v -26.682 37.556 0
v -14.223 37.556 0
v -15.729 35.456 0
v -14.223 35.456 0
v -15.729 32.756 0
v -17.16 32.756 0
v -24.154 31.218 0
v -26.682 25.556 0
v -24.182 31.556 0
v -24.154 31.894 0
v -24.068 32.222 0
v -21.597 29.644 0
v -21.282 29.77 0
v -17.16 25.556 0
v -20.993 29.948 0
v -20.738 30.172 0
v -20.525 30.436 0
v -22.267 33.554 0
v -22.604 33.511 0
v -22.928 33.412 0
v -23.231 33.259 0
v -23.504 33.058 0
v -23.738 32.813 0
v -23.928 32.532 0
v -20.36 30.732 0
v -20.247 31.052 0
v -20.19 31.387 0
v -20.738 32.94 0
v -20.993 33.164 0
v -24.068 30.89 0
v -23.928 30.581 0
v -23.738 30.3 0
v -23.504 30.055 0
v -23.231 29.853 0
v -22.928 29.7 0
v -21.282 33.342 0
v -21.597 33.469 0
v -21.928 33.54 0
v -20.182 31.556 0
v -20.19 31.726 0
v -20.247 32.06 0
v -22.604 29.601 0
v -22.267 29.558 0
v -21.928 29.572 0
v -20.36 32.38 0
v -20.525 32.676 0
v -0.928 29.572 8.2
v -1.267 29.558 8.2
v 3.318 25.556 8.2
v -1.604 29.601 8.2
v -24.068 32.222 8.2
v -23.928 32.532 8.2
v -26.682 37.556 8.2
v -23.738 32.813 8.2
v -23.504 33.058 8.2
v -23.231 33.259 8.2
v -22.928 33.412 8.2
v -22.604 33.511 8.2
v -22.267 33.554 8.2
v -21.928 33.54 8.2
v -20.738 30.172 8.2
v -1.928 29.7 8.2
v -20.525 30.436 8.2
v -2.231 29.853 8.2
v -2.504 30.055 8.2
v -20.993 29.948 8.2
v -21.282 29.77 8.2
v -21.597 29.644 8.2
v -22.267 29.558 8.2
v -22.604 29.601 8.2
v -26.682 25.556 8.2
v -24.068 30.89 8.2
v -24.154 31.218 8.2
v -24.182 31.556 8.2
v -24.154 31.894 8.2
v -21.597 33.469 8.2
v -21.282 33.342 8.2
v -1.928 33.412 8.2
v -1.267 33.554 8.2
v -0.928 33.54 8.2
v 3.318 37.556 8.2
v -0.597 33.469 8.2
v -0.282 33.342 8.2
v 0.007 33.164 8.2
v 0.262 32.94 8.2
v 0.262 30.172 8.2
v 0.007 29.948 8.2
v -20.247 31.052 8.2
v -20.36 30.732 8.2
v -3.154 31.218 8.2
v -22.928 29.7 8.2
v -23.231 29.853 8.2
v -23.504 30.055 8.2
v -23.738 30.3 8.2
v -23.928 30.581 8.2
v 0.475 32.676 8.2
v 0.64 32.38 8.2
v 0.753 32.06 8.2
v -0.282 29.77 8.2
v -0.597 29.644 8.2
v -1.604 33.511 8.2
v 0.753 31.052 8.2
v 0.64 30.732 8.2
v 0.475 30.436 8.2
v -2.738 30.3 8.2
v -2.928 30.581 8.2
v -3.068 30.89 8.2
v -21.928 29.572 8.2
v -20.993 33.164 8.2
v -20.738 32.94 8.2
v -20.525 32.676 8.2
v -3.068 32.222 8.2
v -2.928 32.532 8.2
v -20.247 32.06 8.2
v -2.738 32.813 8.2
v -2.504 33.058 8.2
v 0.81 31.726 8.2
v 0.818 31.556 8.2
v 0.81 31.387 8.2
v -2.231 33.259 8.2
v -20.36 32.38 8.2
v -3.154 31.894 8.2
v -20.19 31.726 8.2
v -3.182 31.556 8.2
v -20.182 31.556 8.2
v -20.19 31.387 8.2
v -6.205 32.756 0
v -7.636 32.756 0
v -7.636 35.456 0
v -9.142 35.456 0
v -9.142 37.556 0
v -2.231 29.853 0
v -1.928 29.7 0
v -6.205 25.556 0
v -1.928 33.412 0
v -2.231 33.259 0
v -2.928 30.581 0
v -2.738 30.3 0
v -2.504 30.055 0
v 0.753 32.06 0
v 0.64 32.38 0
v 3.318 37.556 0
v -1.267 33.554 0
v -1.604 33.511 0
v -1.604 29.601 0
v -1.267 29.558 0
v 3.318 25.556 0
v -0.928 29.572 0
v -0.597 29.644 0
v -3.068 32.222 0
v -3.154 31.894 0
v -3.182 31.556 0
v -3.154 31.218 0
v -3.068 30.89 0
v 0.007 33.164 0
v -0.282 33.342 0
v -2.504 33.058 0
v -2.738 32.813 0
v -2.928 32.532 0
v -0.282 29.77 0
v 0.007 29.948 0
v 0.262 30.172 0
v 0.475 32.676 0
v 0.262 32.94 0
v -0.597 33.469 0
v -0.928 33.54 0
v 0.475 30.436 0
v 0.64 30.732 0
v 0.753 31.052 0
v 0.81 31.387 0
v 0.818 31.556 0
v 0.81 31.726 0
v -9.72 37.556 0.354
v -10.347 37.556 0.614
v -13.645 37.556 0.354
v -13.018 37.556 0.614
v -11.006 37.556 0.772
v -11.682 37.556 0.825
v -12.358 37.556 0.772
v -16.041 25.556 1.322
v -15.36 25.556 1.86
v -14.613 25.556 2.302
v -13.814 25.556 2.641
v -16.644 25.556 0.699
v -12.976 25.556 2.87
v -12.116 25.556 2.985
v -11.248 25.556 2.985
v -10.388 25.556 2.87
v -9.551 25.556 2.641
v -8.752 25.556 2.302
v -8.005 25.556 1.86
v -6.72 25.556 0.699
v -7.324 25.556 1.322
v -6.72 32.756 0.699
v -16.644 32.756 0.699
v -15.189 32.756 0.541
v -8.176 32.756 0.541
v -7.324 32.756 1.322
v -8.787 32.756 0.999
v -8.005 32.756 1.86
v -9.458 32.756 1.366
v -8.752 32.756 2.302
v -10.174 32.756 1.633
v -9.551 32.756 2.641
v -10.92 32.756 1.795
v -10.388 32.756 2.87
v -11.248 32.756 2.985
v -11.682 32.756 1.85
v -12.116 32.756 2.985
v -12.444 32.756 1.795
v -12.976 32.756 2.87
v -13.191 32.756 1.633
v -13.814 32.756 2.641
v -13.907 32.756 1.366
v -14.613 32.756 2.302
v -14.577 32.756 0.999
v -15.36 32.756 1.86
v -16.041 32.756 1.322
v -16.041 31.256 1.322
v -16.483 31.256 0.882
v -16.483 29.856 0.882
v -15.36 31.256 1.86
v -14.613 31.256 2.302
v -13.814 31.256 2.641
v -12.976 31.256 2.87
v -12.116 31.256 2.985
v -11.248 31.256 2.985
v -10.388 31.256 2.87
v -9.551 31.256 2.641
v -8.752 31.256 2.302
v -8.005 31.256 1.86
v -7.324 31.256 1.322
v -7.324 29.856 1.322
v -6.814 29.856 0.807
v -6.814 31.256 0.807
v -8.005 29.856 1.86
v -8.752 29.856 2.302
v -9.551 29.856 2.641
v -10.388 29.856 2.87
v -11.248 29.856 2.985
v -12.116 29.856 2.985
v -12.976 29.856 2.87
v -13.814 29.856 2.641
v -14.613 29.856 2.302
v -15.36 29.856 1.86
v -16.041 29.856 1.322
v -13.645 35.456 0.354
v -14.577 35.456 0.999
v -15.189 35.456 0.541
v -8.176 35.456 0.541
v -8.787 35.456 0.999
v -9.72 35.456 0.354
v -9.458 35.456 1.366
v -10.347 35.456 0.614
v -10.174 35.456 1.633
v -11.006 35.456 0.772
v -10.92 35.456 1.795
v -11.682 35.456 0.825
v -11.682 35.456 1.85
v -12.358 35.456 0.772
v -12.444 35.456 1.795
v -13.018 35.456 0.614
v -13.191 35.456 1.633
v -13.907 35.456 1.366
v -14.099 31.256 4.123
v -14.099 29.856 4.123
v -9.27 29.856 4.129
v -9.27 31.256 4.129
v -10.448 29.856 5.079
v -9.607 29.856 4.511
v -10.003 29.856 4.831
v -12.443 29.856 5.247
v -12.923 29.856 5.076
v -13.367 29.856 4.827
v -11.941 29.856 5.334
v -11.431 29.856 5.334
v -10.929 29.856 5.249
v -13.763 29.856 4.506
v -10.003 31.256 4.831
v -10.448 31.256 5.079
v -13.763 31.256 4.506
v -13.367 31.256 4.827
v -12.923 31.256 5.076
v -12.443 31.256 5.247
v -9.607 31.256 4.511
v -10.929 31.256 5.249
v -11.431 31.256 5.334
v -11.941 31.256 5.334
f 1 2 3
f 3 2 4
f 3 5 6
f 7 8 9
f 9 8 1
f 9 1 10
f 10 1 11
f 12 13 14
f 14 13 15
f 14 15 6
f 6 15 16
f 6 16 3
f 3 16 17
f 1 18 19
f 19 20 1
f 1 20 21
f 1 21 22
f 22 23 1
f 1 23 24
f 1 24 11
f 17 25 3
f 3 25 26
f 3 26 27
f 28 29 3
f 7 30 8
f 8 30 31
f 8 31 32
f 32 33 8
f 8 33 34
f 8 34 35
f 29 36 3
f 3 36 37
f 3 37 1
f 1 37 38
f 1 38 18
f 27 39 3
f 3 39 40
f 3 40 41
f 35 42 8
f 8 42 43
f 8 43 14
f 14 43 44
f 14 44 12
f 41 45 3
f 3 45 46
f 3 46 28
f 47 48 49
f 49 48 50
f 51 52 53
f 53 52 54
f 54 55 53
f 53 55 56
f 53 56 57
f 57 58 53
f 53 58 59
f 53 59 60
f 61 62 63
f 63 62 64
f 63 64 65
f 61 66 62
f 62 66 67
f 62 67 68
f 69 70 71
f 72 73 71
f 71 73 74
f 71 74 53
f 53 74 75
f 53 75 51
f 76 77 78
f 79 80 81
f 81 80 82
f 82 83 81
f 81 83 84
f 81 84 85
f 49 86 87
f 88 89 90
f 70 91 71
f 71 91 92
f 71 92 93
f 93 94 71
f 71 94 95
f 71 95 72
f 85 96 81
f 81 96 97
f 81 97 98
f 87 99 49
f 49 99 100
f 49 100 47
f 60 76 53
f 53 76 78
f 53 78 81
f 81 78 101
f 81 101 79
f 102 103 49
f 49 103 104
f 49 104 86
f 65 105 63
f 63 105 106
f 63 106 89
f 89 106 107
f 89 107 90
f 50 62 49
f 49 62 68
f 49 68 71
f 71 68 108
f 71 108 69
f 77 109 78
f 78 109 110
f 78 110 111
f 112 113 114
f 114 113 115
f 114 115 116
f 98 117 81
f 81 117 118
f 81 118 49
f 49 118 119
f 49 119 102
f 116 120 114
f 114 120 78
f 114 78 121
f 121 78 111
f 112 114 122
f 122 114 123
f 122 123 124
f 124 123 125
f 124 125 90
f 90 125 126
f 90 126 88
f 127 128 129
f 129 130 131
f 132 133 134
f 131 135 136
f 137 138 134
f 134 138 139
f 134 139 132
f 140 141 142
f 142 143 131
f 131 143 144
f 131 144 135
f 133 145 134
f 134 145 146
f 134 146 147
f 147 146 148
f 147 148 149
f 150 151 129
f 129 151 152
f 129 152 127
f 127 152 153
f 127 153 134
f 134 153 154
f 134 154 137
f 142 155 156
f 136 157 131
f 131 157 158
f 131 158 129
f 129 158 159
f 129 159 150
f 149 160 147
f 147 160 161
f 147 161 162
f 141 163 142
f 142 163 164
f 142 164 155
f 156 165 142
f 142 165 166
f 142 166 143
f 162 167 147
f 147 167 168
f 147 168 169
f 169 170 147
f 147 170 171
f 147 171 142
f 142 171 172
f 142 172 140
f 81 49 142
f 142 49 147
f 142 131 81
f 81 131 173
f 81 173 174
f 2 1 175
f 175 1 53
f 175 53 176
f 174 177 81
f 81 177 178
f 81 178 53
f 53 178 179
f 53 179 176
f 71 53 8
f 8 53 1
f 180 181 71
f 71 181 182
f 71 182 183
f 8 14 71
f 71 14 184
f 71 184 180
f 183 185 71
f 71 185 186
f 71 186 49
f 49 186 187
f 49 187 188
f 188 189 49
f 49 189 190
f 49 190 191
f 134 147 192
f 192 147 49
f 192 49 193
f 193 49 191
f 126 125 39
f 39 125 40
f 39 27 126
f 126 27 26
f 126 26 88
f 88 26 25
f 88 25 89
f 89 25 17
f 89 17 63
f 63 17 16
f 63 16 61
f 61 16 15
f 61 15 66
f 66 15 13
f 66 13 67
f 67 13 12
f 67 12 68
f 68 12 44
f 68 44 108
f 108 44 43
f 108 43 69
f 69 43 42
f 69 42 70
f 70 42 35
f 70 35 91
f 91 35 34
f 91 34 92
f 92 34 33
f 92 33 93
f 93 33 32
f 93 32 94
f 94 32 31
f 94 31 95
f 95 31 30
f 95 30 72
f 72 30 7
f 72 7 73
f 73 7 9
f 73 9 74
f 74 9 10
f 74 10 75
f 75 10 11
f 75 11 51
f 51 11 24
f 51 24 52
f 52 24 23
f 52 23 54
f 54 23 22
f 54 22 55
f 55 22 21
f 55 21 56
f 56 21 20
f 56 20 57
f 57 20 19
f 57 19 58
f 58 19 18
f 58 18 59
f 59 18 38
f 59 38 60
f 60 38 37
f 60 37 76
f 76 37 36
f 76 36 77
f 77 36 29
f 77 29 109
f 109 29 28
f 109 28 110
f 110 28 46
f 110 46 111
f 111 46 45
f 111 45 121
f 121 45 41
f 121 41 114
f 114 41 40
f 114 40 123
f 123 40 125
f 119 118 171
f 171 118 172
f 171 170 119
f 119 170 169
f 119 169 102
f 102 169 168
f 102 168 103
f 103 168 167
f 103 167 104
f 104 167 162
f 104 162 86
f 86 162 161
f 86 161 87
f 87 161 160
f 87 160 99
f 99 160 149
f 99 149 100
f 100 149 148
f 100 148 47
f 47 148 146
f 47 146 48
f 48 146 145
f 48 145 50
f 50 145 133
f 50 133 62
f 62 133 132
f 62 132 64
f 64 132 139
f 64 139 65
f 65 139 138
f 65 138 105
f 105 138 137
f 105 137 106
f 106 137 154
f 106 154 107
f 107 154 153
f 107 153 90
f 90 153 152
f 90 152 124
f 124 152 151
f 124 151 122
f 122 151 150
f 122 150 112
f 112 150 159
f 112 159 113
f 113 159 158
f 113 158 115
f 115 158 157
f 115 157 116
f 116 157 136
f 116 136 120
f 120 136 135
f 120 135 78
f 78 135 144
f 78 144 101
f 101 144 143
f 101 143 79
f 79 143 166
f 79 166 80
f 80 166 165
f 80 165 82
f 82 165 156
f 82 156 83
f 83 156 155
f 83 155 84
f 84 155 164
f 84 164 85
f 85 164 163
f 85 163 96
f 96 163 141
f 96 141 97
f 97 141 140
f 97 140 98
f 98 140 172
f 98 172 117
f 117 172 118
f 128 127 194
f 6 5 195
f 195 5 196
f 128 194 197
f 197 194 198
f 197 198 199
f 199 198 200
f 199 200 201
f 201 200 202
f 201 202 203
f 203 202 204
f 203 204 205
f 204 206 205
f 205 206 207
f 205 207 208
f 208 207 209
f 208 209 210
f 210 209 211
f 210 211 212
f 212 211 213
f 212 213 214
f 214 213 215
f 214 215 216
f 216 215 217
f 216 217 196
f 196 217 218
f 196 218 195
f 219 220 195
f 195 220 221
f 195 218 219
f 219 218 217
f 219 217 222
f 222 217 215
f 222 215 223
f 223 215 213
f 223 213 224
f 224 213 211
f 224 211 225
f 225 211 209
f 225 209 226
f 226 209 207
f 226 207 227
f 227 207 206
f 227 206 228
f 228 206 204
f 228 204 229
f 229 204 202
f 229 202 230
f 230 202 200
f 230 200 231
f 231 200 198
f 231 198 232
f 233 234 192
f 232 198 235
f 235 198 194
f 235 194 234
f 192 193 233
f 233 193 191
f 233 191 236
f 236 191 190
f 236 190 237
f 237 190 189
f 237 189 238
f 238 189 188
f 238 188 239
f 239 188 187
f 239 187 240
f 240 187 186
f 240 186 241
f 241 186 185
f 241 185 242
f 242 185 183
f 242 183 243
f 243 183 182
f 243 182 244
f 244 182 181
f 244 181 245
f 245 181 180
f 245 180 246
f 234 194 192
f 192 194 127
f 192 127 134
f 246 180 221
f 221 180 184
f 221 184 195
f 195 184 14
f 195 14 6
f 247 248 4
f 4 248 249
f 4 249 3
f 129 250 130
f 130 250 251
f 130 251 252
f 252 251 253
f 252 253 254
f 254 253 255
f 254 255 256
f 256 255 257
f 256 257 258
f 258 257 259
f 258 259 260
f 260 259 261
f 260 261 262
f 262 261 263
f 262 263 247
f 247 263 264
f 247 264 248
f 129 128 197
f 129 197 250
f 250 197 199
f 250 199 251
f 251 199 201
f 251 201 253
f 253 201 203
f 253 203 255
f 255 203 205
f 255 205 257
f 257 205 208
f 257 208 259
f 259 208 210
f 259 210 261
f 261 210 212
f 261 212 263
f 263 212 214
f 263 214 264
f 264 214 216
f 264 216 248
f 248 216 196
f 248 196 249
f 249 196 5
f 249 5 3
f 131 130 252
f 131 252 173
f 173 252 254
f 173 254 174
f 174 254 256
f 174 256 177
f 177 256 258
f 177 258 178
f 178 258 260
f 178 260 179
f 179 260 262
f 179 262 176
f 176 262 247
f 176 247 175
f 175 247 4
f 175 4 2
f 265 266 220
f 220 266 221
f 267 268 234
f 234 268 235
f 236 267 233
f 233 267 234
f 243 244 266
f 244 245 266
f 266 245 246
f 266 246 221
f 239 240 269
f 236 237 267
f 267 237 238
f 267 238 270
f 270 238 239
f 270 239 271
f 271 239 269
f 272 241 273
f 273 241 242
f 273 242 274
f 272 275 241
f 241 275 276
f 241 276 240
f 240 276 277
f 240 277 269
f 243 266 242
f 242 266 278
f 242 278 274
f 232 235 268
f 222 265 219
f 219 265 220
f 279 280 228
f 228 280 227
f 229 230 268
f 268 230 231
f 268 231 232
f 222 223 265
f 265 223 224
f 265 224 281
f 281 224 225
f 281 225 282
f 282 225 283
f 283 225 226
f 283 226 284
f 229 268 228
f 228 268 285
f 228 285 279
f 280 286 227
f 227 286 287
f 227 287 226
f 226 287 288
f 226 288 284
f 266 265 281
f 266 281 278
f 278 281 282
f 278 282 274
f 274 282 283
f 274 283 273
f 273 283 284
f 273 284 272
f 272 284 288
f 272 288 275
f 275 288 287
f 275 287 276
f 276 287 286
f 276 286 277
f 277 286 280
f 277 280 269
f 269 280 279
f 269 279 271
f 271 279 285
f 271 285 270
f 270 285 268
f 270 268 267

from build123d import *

# Parameters (mm, degrees)
SKETCH1_W           = 30
SKETCH1_H           = 12
SKETCH1_R           = 2
BOSS_EXTRUDE1_DEPTH = 8.2
SKETCH2_R           = 6.5
CUT_EXTRUDE1_DEPTH  = 7.2
SKETCH3_R           = 5.35
CUT_EXTRUDE2_DEPTH  = 9.9
SKETCH4_R           = 4.325
CUT_EXTRUDE3_DEPTH  = 13.9
CUT_EXTRUDE4_START  = -5.7
CUT_EXTRUDE4_DEPTH  = 1.4


with BuildPart() as part:
    # Sketch1 → Boss-Extrude1 (new body)
    with BuildSketch(Plane.XY):
        with Locations((-11.682314935, 31.556218858)):
            Rectangle(SKETCH1_W, SKETCH1_H)
        with Locations((-22.182314935, 31.556218858)):
            Circle(SKETCH1_R, mode=Mode.SUBTRACT)
        with Locations((-1.182314935, 31.556218858)):
            Circle(SKETCH1_R, mode=Mode.SUBTRACT)
    extrude(amount=BOSS_EXTRUDE1_DEPTH)

    # Sketch2 → Cut-Extrude1 (cut)
    with BuildSketch(Plane(origin=(0, 25.556218858, 0), x_dir=(-1, 0, 0), z_dir=(0, -1, 0))):
        with Locations((11.682314935, 3.5)):
            Circle(SKETCH2_R)
    extrude(amount=-CUT_EXTRUDE1_DEPTH, mode=Mode.SUBTRACT)

    # Sketch3 → Cut-Extrude2 (cut)
    with BuildSketch(Plane(origin=(0, 25.556218858, 0), x_dir=(-1, 0, 0), z_dir=(0, -1, 0))):
        with Locations((11.682314935, 3.5)):
            Circle(SKETCH3_R)
    extrude(amount=-CUT_EXTRUDE2_DEPTH, mode=Mode.SUBTRACT)

    # Sketch4 → Cut-Extrude3 (cut)
    with BuildSketch(Plane(origin=(0, 25.556218858, 0), x_dir=(-1, 0, 0), z_dir=(0, -1, 0))):
        with Locations((11.682314935, 3.5)):
            Circle(SKETCH4_R)
    extrude(amount=-CUT_EXTRUDE3_DEPTH, mode=Mode.SUBTRACT)

    # Sketch5 → Cut-Extrude4 (cut)
    with BuildSketch(Plane(origin=(0, 25.556218858, 0), x_dir=(-1, 0, 0), z_dir=(0, -1, 0)).offset(CUT_EXTRUDE4_START)):
        with BuildLine():
            Line((9.270124371, -4.128630198), (5.336263245, 1.191543622))
            Line((5.336263245, 1.191543622), (18.008683121, 1.191543622))
            Line((18.008683121, 1.191543622), (14.098774847, -4.122841808))
            ThreePointArc((14.098774847, -4.122841808), (11.685911211, -5.344997844), (9.270124371, -4.128630198))
        make_face()
    extrude(amount=CUT_EXTRUDE4_DEPTH, mode=Mode.SUBTRACT)


solid = part.part
